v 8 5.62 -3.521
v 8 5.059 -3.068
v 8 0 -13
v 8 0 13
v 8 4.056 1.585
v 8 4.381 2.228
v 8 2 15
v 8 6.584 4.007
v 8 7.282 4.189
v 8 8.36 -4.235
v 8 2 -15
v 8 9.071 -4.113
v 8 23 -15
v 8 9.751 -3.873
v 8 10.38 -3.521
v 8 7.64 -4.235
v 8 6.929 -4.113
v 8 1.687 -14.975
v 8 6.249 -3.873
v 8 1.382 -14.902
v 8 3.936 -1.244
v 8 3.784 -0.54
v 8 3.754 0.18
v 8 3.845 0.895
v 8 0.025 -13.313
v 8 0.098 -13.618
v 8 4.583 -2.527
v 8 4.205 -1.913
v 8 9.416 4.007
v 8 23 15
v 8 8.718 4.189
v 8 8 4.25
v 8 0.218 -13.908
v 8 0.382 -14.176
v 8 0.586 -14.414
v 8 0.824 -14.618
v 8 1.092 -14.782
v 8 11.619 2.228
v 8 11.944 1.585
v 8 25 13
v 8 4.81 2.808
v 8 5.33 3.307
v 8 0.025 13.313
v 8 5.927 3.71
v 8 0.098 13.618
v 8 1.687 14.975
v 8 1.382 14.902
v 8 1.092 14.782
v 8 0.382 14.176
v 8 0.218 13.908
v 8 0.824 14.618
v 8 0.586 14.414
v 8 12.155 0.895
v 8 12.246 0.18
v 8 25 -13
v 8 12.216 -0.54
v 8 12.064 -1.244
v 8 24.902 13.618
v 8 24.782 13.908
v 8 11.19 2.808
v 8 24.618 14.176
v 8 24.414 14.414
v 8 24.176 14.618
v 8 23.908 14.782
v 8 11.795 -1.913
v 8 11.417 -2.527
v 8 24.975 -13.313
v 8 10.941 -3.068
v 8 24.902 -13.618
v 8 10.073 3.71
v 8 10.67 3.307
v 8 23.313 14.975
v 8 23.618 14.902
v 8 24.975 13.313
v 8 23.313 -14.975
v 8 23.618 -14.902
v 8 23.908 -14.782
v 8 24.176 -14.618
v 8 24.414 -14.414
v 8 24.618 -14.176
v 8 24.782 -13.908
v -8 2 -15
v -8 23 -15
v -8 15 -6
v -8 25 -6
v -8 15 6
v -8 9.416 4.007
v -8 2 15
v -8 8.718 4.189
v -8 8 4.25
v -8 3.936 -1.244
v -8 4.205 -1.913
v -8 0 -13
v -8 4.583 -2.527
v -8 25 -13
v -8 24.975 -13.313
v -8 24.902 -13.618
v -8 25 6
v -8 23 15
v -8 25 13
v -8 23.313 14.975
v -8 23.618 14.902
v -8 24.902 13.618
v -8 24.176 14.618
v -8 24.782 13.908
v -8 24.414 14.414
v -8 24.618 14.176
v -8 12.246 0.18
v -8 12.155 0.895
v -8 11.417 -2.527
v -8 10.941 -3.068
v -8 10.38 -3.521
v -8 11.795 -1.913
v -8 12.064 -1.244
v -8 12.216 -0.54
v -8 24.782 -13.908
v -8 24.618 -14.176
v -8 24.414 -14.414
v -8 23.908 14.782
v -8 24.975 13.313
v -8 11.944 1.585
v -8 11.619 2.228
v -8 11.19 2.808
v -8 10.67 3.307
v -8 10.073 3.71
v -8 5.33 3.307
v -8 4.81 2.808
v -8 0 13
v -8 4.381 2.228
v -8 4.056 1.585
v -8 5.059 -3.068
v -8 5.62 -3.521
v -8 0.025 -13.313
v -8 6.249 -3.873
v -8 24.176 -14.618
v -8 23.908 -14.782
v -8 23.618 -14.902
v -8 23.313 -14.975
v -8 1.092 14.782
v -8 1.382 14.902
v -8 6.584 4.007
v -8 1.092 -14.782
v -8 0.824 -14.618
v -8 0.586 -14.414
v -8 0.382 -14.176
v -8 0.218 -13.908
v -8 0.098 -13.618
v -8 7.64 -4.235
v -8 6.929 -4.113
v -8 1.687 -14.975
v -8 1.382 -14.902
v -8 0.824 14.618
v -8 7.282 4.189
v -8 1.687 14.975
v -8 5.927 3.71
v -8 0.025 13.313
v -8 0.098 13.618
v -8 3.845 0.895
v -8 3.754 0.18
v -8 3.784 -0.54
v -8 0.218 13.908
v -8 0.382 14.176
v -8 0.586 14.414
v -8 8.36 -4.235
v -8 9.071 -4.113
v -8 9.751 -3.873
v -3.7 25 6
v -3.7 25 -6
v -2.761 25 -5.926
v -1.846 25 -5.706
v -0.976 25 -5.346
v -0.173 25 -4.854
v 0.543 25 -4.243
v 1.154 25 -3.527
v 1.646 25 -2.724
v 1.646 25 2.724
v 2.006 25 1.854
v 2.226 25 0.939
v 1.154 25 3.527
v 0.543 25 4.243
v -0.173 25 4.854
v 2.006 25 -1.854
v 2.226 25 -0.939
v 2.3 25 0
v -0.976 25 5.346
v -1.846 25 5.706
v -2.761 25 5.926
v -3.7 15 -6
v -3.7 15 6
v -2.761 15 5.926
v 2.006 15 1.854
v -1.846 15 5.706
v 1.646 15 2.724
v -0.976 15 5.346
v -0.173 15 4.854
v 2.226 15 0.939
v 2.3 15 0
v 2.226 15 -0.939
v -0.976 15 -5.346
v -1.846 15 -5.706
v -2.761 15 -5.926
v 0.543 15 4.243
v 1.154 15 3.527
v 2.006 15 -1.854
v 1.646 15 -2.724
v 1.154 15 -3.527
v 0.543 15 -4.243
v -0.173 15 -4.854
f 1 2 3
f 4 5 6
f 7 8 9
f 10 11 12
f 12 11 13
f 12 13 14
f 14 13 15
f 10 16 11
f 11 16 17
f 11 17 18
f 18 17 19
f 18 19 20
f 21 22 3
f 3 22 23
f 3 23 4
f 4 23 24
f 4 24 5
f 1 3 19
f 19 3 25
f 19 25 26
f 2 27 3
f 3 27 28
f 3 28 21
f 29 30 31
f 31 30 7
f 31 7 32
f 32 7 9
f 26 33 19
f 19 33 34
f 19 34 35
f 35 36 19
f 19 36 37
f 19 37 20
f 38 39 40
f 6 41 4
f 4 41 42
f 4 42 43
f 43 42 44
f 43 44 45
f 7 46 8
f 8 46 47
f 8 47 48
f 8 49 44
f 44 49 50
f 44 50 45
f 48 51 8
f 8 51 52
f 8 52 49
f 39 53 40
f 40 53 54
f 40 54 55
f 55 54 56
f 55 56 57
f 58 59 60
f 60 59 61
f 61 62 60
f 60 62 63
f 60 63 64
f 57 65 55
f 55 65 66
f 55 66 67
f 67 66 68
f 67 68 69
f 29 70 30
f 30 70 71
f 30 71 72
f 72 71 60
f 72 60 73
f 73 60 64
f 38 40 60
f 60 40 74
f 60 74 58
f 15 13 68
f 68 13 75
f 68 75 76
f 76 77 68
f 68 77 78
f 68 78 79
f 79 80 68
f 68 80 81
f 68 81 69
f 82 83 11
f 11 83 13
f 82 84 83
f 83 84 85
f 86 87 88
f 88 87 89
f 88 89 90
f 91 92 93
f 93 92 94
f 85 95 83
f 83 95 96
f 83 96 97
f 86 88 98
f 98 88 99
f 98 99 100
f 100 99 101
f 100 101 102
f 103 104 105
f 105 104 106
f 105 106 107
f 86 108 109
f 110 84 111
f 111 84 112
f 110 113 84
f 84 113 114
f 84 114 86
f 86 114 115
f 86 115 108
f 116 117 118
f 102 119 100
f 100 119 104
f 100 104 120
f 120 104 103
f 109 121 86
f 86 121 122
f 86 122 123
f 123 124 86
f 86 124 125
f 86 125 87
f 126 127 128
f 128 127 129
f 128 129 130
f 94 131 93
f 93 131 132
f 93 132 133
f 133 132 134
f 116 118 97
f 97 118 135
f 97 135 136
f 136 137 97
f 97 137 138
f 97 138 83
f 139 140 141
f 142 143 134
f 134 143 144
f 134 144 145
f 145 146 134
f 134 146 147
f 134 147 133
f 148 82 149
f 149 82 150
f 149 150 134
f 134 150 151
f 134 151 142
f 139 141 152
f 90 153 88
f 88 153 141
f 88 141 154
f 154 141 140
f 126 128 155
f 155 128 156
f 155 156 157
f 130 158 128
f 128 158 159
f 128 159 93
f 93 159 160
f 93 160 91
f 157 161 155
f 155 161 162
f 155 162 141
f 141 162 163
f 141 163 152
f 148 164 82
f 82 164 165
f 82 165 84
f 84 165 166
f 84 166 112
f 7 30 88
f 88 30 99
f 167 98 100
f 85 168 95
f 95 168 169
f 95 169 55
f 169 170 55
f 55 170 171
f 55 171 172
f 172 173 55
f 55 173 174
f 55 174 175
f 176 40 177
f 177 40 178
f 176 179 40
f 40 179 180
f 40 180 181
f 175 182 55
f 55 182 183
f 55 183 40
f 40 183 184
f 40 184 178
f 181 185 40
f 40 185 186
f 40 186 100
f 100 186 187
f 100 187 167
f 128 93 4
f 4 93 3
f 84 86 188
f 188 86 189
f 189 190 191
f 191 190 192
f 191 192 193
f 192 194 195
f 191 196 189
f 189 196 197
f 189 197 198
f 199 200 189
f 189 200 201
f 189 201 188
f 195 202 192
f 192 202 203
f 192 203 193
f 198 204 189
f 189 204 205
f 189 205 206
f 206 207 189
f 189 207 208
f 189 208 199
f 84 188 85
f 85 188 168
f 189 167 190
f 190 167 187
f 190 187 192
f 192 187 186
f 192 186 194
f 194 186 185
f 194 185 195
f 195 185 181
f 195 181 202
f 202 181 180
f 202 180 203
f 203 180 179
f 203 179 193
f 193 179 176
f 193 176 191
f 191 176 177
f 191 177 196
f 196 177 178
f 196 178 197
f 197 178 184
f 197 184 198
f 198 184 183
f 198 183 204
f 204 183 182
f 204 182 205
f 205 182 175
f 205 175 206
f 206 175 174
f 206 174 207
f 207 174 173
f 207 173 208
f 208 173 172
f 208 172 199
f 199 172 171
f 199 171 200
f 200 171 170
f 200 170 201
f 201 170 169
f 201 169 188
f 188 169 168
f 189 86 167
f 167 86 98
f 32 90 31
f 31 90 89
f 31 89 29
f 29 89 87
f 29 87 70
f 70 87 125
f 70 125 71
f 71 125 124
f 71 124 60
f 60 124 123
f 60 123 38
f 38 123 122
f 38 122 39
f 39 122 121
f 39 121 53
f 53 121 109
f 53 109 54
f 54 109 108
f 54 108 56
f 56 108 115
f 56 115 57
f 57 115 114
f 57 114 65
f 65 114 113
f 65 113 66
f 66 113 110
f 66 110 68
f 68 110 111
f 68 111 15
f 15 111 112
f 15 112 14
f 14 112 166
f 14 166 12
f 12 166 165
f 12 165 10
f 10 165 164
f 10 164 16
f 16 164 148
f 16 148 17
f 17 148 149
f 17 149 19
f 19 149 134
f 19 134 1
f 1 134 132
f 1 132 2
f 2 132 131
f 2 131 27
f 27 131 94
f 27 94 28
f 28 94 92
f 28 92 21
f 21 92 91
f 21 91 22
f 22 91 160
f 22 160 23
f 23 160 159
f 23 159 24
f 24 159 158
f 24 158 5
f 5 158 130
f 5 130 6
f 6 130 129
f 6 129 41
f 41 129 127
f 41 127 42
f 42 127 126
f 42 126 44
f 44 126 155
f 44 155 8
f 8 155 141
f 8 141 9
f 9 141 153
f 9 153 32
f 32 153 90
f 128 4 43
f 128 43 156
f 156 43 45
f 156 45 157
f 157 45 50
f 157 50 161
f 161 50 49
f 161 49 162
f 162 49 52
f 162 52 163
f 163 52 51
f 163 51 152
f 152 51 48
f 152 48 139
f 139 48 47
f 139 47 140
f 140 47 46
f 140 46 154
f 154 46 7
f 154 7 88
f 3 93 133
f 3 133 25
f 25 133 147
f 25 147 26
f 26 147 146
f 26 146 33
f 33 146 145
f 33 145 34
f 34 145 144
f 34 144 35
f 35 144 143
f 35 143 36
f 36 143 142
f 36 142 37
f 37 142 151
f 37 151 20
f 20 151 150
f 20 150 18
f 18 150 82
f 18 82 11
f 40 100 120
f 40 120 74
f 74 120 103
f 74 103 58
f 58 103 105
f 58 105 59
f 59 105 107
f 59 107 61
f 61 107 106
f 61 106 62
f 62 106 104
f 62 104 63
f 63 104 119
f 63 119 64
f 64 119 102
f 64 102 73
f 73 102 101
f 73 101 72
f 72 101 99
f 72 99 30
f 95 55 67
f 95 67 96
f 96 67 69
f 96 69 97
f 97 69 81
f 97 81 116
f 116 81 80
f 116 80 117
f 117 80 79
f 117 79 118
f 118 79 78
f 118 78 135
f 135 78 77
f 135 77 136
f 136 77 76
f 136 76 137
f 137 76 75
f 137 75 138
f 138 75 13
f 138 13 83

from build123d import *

# Parameters (mm, degrees)
SKETCH1_W           = 16
SKETCH1_H           = 30
BOSS_EXTRUDE1_DEPTH = 25
CUT_EXTRUDE1_DEPTH  = 10
SKETCH3_R           = 4.25
CUT_EXTRUDE2_DEPTH  = 34.256578297
FILLET1_R           = 2


with BuildPart() as part:
    # Sketch1 → Boss-Extrude1 (new body)
    with BuildSketch(Plane(origin=(0, 0, 0), x_dir=(1, 0, 0), z_dir=(0, 1, 0))):
        Rectangle(SKETCH1_W, SKETCH1_H)
    extrude(amount=BOSS_EXTRUDE1_DEPTH)

    # Sketch2 → Cut-Extrude1 (cut)
    with BuildSketch(Plane(origin=(0, 25, 0), x_dir=(1, 0, 0), z_dir=(0, 1, 0))):
        with BuildLine():
            Line((-8, 6), (-3.7, 6))
            ThreePointArc((-3.7, 6), (2.3, 0), (-3.7, -6))
            Line((-3.7, -6), (-8, -6))
            ThreePointArc((-8, -6), (-14, 0), (-8, 6))
        make_face()
    extrude(amount=-CUT_EXTRUDE1_DEPTH, mode=Mode.SUBTRACT)

    # Sketch3 → Cut-Extrude2 (cut, through all)
    with BuildSketch(Plane.ZY.offset(8)):
        with Locations((0, 8)):
            Circle(SKETCH3_R)
    extrude(amount=-CUT_EXTRUDE2_DEPTH, mode=Mode.SUBTRACT)

    # Fillet1
    fillet1_edges = [part.edges().sort_by_distance(p)[0] for p in [
        (0, 25, 15),
        (0, 0, 15),
        (0, 0, -15),
        (0, 25, -15),
    ]]
    fillet(fillet1_edges, radius=FILLET1_R)


solid = part.part
